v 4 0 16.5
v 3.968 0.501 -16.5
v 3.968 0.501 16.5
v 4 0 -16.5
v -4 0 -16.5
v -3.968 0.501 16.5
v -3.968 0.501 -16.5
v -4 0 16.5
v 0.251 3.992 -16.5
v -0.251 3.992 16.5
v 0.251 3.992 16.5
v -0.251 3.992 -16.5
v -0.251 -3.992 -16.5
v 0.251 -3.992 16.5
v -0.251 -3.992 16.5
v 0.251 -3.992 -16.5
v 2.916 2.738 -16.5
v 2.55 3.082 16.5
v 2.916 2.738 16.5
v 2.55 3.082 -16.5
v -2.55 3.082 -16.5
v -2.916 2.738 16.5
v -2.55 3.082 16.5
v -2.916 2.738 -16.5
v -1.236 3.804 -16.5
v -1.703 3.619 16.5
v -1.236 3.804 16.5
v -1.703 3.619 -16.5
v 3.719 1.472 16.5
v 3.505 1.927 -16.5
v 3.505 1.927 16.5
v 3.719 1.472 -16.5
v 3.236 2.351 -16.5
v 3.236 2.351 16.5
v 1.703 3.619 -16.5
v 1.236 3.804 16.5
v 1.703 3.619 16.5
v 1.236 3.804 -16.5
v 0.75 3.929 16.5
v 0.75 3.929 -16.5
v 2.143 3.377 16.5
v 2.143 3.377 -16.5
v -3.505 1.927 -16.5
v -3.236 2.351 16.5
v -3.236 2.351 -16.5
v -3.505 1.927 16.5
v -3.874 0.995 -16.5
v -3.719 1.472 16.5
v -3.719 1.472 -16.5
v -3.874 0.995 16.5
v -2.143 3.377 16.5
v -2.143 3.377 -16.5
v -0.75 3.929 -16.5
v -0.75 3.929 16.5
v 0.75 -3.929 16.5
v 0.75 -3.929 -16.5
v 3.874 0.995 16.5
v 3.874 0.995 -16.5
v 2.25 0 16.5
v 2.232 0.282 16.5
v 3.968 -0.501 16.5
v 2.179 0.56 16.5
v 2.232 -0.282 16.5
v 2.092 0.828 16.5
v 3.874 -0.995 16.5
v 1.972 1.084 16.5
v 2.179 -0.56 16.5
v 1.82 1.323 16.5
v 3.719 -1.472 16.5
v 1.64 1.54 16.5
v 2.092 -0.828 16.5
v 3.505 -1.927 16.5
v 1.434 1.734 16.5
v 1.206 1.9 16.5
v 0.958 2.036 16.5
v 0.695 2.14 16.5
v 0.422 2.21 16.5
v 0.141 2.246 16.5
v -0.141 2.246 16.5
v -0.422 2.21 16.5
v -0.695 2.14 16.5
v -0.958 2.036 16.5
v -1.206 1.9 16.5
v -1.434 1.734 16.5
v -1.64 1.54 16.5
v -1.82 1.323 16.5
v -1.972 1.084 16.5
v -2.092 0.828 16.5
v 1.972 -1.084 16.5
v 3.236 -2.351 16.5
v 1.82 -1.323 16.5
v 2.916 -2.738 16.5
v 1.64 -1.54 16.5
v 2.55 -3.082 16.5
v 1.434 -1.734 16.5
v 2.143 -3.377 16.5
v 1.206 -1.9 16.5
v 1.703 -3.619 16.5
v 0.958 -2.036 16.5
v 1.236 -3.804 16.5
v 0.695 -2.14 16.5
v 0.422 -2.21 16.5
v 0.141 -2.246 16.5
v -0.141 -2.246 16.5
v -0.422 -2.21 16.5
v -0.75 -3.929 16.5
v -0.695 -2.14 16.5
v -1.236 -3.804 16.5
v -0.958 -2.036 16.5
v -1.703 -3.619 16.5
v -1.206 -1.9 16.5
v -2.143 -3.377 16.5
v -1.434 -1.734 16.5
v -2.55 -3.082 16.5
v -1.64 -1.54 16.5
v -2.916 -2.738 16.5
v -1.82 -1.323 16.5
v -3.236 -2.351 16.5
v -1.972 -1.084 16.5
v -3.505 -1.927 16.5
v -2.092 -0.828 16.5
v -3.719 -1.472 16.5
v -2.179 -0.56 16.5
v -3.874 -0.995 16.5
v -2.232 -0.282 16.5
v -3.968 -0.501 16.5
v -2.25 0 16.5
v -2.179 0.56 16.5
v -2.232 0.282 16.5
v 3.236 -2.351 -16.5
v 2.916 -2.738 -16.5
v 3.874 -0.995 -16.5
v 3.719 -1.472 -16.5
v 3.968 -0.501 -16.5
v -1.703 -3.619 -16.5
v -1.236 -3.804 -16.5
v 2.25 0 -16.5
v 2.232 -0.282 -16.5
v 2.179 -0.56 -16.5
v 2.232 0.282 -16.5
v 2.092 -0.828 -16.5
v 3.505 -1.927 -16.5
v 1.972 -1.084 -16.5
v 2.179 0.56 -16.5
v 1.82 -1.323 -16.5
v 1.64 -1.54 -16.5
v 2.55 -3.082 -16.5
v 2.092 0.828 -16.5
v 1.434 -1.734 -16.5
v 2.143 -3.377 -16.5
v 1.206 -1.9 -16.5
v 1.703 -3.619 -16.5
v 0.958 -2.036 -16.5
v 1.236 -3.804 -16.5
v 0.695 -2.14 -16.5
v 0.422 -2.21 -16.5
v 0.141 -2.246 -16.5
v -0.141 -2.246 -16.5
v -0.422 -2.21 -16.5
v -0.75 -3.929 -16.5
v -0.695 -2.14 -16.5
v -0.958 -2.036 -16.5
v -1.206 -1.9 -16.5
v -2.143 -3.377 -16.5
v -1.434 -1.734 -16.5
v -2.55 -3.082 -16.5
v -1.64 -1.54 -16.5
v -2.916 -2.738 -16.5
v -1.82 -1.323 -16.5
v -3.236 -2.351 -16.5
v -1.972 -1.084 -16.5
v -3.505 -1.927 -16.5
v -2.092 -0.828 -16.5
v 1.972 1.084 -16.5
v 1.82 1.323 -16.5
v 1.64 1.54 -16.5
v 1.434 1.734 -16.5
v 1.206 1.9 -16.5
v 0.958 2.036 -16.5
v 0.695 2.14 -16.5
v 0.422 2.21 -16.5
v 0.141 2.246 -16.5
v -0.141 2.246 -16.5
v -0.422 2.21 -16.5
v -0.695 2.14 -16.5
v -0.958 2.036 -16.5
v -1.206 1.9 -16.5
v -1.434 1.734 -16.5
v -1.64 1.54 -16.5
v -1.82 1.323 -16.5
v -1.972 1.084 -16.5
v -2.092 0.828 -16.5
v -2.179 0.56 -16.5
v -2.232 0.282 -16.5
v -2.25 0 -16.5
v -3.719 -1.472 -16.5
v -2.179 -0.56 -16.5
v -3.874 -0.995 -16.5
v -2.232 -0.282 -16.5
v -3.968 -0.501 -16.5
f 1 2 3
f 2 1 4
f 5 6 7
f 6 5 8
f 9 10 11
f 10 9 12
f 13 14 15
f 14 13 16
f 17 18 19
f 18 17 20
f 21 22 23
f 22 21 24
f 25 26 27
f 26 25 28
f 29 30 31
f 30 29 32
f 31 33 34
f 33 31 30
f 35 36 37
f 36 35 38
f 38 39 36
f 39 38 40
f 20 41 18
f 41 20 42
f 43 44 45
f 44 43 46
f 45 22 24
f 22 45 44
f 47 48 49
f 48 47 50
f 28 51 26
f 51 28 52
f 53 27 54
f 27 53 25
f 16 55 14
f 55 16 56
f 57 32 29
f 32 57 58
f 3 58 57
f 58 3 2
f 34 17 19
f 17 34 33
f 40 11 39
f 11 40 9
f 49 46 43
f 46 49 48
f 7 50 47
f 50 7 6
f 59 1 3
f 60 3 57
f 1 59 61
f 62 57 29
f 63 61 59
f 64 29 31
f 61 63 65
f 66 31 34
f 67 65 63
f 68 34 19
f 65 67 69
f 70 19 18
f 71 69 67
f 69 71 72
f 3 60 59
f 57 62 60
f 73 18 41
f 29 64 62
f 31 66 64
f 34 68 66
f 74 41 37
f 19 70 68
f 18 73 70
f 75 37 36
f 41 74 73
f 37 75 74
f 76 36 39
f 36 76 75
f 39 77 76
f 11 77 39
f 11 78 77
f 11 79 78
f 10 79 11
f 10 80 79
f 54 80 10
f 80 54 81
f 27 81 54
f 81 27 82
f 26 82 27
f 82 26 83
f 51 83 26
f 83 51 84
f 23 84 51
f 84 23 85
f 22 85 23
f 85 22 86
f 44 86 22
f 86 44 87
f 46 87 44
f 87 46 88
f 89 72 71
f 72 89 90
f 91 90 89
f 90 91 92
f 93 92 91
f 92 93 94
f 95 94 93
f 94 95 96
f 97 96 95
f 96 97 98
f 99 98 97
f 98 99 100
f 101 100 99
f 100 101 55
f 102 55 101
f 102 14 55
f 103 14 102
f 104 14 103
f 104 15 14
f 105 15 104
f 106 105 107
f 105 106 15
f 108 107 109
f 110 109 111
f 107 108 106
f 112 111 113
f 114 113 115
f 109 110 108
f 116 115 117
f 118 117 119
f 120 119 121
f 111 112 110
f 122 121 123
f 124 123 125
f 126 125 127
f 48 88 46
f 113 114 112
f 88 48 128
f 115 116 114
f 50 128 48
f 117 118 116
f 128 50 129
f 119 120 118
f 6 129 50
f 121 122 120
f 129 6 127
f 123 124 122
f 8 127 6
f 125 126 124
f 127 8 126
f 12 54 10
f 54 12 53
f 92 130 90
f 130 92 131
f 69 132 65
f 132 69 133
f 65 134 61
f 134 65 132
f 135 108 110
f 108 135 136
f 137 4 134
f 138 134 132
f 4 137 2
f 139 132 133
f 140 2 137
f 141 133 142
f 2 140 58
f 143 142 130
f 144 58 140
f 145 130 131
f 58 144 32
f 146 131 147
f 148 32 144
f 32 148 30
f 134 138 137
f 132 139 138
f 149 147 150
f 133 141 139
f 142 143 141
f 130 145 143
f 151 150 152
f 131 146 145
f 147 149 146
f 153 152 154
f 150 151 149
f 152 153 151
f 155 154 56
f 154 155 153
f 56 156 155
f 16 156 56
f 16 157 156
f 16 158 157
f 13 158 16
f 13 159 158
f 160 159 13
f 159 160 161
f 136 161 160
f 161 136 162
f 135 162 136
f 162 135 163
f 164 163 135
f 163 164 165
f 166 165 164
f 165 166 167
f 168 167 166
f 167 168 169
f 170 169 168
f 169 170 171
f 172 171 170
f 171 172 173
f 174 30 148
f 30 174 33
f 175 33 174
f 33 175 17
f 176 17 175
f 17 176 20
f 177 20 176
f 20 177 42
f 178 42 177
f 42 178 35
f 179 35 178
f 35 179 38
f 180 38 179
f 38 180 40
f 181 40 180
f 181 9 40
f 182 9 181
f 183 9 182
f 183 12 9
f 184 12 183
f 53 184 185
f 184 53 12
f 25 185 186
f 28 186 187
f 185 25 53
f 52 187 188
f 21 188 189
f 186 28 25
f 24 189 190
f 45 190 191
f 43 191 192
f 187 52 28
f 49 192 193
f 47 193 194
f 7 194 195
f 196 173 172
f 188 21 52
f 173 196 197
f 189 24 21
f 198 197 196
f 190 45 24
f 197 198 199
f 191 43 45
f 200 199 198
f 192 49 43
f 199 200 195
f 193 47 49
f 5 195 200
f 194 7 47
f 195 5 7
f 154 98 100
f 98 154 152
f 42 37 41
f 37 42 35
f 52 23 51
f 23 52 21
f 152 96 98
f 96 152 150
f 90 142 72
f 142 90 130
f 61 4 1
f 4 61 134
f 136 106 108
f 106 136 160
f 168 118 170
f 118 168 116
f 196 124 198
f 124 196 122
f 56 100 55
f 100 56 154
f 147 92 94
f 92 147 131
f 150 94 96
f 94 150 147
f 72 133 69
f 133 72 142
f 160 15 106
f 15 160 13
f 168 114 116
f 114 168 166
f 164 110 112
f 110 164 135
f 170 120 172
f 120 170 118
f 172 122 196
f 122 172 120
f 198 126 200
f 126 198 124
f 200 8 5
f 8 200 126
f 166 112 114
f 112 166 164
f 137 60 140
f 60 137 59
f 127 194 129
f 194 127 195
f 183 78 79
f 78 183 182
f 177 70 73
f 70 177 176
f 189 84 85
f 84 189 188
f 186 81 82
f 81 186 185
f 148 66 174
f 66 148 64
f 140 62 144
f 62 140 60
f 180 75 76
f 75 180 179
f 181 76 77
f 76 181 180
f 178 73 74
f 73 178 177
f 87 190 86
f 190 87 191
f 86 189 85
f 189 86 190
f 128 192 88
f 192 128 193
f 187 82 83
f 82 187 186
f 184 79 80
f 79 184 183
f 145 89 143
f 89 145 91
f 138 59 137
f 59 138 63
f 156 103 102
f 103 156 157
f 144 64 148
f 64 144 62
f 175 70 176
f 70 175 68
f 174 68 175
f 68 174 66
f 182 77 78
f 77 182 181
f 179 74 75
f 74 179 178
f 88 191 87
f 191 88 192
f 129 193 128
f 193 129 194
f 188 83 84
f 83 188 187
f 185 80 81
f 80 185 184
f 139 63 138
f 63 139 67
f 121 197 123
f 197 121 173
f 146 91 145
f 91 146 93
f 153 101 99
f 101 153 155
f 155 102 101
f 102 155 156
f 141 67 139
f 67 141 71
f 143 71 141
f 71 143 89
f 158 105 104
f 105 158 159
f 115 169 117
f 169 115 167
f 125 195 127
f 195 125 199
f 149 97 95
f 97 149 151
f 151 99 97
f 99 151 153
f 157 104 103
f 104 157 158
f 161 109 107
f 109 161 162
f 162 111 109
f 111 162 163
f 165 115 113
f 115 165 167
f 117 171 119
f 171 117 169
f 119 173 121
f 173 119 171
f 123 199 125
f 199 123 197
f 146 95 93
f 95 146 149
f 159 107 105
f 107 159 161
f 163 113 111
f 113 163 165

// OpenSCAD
$fn = 50;


difference() {
	union() {
		translate(v = [0, 0, -16.5000000000]) {
			cylinder(h = 33, r = 4.0000000000);
		}
	}
	union() {
		translate(v = [0, 0, -100.0000000000]) {
			cylinder(h = 200, r = 2.2500000000);
		}
	}
}
